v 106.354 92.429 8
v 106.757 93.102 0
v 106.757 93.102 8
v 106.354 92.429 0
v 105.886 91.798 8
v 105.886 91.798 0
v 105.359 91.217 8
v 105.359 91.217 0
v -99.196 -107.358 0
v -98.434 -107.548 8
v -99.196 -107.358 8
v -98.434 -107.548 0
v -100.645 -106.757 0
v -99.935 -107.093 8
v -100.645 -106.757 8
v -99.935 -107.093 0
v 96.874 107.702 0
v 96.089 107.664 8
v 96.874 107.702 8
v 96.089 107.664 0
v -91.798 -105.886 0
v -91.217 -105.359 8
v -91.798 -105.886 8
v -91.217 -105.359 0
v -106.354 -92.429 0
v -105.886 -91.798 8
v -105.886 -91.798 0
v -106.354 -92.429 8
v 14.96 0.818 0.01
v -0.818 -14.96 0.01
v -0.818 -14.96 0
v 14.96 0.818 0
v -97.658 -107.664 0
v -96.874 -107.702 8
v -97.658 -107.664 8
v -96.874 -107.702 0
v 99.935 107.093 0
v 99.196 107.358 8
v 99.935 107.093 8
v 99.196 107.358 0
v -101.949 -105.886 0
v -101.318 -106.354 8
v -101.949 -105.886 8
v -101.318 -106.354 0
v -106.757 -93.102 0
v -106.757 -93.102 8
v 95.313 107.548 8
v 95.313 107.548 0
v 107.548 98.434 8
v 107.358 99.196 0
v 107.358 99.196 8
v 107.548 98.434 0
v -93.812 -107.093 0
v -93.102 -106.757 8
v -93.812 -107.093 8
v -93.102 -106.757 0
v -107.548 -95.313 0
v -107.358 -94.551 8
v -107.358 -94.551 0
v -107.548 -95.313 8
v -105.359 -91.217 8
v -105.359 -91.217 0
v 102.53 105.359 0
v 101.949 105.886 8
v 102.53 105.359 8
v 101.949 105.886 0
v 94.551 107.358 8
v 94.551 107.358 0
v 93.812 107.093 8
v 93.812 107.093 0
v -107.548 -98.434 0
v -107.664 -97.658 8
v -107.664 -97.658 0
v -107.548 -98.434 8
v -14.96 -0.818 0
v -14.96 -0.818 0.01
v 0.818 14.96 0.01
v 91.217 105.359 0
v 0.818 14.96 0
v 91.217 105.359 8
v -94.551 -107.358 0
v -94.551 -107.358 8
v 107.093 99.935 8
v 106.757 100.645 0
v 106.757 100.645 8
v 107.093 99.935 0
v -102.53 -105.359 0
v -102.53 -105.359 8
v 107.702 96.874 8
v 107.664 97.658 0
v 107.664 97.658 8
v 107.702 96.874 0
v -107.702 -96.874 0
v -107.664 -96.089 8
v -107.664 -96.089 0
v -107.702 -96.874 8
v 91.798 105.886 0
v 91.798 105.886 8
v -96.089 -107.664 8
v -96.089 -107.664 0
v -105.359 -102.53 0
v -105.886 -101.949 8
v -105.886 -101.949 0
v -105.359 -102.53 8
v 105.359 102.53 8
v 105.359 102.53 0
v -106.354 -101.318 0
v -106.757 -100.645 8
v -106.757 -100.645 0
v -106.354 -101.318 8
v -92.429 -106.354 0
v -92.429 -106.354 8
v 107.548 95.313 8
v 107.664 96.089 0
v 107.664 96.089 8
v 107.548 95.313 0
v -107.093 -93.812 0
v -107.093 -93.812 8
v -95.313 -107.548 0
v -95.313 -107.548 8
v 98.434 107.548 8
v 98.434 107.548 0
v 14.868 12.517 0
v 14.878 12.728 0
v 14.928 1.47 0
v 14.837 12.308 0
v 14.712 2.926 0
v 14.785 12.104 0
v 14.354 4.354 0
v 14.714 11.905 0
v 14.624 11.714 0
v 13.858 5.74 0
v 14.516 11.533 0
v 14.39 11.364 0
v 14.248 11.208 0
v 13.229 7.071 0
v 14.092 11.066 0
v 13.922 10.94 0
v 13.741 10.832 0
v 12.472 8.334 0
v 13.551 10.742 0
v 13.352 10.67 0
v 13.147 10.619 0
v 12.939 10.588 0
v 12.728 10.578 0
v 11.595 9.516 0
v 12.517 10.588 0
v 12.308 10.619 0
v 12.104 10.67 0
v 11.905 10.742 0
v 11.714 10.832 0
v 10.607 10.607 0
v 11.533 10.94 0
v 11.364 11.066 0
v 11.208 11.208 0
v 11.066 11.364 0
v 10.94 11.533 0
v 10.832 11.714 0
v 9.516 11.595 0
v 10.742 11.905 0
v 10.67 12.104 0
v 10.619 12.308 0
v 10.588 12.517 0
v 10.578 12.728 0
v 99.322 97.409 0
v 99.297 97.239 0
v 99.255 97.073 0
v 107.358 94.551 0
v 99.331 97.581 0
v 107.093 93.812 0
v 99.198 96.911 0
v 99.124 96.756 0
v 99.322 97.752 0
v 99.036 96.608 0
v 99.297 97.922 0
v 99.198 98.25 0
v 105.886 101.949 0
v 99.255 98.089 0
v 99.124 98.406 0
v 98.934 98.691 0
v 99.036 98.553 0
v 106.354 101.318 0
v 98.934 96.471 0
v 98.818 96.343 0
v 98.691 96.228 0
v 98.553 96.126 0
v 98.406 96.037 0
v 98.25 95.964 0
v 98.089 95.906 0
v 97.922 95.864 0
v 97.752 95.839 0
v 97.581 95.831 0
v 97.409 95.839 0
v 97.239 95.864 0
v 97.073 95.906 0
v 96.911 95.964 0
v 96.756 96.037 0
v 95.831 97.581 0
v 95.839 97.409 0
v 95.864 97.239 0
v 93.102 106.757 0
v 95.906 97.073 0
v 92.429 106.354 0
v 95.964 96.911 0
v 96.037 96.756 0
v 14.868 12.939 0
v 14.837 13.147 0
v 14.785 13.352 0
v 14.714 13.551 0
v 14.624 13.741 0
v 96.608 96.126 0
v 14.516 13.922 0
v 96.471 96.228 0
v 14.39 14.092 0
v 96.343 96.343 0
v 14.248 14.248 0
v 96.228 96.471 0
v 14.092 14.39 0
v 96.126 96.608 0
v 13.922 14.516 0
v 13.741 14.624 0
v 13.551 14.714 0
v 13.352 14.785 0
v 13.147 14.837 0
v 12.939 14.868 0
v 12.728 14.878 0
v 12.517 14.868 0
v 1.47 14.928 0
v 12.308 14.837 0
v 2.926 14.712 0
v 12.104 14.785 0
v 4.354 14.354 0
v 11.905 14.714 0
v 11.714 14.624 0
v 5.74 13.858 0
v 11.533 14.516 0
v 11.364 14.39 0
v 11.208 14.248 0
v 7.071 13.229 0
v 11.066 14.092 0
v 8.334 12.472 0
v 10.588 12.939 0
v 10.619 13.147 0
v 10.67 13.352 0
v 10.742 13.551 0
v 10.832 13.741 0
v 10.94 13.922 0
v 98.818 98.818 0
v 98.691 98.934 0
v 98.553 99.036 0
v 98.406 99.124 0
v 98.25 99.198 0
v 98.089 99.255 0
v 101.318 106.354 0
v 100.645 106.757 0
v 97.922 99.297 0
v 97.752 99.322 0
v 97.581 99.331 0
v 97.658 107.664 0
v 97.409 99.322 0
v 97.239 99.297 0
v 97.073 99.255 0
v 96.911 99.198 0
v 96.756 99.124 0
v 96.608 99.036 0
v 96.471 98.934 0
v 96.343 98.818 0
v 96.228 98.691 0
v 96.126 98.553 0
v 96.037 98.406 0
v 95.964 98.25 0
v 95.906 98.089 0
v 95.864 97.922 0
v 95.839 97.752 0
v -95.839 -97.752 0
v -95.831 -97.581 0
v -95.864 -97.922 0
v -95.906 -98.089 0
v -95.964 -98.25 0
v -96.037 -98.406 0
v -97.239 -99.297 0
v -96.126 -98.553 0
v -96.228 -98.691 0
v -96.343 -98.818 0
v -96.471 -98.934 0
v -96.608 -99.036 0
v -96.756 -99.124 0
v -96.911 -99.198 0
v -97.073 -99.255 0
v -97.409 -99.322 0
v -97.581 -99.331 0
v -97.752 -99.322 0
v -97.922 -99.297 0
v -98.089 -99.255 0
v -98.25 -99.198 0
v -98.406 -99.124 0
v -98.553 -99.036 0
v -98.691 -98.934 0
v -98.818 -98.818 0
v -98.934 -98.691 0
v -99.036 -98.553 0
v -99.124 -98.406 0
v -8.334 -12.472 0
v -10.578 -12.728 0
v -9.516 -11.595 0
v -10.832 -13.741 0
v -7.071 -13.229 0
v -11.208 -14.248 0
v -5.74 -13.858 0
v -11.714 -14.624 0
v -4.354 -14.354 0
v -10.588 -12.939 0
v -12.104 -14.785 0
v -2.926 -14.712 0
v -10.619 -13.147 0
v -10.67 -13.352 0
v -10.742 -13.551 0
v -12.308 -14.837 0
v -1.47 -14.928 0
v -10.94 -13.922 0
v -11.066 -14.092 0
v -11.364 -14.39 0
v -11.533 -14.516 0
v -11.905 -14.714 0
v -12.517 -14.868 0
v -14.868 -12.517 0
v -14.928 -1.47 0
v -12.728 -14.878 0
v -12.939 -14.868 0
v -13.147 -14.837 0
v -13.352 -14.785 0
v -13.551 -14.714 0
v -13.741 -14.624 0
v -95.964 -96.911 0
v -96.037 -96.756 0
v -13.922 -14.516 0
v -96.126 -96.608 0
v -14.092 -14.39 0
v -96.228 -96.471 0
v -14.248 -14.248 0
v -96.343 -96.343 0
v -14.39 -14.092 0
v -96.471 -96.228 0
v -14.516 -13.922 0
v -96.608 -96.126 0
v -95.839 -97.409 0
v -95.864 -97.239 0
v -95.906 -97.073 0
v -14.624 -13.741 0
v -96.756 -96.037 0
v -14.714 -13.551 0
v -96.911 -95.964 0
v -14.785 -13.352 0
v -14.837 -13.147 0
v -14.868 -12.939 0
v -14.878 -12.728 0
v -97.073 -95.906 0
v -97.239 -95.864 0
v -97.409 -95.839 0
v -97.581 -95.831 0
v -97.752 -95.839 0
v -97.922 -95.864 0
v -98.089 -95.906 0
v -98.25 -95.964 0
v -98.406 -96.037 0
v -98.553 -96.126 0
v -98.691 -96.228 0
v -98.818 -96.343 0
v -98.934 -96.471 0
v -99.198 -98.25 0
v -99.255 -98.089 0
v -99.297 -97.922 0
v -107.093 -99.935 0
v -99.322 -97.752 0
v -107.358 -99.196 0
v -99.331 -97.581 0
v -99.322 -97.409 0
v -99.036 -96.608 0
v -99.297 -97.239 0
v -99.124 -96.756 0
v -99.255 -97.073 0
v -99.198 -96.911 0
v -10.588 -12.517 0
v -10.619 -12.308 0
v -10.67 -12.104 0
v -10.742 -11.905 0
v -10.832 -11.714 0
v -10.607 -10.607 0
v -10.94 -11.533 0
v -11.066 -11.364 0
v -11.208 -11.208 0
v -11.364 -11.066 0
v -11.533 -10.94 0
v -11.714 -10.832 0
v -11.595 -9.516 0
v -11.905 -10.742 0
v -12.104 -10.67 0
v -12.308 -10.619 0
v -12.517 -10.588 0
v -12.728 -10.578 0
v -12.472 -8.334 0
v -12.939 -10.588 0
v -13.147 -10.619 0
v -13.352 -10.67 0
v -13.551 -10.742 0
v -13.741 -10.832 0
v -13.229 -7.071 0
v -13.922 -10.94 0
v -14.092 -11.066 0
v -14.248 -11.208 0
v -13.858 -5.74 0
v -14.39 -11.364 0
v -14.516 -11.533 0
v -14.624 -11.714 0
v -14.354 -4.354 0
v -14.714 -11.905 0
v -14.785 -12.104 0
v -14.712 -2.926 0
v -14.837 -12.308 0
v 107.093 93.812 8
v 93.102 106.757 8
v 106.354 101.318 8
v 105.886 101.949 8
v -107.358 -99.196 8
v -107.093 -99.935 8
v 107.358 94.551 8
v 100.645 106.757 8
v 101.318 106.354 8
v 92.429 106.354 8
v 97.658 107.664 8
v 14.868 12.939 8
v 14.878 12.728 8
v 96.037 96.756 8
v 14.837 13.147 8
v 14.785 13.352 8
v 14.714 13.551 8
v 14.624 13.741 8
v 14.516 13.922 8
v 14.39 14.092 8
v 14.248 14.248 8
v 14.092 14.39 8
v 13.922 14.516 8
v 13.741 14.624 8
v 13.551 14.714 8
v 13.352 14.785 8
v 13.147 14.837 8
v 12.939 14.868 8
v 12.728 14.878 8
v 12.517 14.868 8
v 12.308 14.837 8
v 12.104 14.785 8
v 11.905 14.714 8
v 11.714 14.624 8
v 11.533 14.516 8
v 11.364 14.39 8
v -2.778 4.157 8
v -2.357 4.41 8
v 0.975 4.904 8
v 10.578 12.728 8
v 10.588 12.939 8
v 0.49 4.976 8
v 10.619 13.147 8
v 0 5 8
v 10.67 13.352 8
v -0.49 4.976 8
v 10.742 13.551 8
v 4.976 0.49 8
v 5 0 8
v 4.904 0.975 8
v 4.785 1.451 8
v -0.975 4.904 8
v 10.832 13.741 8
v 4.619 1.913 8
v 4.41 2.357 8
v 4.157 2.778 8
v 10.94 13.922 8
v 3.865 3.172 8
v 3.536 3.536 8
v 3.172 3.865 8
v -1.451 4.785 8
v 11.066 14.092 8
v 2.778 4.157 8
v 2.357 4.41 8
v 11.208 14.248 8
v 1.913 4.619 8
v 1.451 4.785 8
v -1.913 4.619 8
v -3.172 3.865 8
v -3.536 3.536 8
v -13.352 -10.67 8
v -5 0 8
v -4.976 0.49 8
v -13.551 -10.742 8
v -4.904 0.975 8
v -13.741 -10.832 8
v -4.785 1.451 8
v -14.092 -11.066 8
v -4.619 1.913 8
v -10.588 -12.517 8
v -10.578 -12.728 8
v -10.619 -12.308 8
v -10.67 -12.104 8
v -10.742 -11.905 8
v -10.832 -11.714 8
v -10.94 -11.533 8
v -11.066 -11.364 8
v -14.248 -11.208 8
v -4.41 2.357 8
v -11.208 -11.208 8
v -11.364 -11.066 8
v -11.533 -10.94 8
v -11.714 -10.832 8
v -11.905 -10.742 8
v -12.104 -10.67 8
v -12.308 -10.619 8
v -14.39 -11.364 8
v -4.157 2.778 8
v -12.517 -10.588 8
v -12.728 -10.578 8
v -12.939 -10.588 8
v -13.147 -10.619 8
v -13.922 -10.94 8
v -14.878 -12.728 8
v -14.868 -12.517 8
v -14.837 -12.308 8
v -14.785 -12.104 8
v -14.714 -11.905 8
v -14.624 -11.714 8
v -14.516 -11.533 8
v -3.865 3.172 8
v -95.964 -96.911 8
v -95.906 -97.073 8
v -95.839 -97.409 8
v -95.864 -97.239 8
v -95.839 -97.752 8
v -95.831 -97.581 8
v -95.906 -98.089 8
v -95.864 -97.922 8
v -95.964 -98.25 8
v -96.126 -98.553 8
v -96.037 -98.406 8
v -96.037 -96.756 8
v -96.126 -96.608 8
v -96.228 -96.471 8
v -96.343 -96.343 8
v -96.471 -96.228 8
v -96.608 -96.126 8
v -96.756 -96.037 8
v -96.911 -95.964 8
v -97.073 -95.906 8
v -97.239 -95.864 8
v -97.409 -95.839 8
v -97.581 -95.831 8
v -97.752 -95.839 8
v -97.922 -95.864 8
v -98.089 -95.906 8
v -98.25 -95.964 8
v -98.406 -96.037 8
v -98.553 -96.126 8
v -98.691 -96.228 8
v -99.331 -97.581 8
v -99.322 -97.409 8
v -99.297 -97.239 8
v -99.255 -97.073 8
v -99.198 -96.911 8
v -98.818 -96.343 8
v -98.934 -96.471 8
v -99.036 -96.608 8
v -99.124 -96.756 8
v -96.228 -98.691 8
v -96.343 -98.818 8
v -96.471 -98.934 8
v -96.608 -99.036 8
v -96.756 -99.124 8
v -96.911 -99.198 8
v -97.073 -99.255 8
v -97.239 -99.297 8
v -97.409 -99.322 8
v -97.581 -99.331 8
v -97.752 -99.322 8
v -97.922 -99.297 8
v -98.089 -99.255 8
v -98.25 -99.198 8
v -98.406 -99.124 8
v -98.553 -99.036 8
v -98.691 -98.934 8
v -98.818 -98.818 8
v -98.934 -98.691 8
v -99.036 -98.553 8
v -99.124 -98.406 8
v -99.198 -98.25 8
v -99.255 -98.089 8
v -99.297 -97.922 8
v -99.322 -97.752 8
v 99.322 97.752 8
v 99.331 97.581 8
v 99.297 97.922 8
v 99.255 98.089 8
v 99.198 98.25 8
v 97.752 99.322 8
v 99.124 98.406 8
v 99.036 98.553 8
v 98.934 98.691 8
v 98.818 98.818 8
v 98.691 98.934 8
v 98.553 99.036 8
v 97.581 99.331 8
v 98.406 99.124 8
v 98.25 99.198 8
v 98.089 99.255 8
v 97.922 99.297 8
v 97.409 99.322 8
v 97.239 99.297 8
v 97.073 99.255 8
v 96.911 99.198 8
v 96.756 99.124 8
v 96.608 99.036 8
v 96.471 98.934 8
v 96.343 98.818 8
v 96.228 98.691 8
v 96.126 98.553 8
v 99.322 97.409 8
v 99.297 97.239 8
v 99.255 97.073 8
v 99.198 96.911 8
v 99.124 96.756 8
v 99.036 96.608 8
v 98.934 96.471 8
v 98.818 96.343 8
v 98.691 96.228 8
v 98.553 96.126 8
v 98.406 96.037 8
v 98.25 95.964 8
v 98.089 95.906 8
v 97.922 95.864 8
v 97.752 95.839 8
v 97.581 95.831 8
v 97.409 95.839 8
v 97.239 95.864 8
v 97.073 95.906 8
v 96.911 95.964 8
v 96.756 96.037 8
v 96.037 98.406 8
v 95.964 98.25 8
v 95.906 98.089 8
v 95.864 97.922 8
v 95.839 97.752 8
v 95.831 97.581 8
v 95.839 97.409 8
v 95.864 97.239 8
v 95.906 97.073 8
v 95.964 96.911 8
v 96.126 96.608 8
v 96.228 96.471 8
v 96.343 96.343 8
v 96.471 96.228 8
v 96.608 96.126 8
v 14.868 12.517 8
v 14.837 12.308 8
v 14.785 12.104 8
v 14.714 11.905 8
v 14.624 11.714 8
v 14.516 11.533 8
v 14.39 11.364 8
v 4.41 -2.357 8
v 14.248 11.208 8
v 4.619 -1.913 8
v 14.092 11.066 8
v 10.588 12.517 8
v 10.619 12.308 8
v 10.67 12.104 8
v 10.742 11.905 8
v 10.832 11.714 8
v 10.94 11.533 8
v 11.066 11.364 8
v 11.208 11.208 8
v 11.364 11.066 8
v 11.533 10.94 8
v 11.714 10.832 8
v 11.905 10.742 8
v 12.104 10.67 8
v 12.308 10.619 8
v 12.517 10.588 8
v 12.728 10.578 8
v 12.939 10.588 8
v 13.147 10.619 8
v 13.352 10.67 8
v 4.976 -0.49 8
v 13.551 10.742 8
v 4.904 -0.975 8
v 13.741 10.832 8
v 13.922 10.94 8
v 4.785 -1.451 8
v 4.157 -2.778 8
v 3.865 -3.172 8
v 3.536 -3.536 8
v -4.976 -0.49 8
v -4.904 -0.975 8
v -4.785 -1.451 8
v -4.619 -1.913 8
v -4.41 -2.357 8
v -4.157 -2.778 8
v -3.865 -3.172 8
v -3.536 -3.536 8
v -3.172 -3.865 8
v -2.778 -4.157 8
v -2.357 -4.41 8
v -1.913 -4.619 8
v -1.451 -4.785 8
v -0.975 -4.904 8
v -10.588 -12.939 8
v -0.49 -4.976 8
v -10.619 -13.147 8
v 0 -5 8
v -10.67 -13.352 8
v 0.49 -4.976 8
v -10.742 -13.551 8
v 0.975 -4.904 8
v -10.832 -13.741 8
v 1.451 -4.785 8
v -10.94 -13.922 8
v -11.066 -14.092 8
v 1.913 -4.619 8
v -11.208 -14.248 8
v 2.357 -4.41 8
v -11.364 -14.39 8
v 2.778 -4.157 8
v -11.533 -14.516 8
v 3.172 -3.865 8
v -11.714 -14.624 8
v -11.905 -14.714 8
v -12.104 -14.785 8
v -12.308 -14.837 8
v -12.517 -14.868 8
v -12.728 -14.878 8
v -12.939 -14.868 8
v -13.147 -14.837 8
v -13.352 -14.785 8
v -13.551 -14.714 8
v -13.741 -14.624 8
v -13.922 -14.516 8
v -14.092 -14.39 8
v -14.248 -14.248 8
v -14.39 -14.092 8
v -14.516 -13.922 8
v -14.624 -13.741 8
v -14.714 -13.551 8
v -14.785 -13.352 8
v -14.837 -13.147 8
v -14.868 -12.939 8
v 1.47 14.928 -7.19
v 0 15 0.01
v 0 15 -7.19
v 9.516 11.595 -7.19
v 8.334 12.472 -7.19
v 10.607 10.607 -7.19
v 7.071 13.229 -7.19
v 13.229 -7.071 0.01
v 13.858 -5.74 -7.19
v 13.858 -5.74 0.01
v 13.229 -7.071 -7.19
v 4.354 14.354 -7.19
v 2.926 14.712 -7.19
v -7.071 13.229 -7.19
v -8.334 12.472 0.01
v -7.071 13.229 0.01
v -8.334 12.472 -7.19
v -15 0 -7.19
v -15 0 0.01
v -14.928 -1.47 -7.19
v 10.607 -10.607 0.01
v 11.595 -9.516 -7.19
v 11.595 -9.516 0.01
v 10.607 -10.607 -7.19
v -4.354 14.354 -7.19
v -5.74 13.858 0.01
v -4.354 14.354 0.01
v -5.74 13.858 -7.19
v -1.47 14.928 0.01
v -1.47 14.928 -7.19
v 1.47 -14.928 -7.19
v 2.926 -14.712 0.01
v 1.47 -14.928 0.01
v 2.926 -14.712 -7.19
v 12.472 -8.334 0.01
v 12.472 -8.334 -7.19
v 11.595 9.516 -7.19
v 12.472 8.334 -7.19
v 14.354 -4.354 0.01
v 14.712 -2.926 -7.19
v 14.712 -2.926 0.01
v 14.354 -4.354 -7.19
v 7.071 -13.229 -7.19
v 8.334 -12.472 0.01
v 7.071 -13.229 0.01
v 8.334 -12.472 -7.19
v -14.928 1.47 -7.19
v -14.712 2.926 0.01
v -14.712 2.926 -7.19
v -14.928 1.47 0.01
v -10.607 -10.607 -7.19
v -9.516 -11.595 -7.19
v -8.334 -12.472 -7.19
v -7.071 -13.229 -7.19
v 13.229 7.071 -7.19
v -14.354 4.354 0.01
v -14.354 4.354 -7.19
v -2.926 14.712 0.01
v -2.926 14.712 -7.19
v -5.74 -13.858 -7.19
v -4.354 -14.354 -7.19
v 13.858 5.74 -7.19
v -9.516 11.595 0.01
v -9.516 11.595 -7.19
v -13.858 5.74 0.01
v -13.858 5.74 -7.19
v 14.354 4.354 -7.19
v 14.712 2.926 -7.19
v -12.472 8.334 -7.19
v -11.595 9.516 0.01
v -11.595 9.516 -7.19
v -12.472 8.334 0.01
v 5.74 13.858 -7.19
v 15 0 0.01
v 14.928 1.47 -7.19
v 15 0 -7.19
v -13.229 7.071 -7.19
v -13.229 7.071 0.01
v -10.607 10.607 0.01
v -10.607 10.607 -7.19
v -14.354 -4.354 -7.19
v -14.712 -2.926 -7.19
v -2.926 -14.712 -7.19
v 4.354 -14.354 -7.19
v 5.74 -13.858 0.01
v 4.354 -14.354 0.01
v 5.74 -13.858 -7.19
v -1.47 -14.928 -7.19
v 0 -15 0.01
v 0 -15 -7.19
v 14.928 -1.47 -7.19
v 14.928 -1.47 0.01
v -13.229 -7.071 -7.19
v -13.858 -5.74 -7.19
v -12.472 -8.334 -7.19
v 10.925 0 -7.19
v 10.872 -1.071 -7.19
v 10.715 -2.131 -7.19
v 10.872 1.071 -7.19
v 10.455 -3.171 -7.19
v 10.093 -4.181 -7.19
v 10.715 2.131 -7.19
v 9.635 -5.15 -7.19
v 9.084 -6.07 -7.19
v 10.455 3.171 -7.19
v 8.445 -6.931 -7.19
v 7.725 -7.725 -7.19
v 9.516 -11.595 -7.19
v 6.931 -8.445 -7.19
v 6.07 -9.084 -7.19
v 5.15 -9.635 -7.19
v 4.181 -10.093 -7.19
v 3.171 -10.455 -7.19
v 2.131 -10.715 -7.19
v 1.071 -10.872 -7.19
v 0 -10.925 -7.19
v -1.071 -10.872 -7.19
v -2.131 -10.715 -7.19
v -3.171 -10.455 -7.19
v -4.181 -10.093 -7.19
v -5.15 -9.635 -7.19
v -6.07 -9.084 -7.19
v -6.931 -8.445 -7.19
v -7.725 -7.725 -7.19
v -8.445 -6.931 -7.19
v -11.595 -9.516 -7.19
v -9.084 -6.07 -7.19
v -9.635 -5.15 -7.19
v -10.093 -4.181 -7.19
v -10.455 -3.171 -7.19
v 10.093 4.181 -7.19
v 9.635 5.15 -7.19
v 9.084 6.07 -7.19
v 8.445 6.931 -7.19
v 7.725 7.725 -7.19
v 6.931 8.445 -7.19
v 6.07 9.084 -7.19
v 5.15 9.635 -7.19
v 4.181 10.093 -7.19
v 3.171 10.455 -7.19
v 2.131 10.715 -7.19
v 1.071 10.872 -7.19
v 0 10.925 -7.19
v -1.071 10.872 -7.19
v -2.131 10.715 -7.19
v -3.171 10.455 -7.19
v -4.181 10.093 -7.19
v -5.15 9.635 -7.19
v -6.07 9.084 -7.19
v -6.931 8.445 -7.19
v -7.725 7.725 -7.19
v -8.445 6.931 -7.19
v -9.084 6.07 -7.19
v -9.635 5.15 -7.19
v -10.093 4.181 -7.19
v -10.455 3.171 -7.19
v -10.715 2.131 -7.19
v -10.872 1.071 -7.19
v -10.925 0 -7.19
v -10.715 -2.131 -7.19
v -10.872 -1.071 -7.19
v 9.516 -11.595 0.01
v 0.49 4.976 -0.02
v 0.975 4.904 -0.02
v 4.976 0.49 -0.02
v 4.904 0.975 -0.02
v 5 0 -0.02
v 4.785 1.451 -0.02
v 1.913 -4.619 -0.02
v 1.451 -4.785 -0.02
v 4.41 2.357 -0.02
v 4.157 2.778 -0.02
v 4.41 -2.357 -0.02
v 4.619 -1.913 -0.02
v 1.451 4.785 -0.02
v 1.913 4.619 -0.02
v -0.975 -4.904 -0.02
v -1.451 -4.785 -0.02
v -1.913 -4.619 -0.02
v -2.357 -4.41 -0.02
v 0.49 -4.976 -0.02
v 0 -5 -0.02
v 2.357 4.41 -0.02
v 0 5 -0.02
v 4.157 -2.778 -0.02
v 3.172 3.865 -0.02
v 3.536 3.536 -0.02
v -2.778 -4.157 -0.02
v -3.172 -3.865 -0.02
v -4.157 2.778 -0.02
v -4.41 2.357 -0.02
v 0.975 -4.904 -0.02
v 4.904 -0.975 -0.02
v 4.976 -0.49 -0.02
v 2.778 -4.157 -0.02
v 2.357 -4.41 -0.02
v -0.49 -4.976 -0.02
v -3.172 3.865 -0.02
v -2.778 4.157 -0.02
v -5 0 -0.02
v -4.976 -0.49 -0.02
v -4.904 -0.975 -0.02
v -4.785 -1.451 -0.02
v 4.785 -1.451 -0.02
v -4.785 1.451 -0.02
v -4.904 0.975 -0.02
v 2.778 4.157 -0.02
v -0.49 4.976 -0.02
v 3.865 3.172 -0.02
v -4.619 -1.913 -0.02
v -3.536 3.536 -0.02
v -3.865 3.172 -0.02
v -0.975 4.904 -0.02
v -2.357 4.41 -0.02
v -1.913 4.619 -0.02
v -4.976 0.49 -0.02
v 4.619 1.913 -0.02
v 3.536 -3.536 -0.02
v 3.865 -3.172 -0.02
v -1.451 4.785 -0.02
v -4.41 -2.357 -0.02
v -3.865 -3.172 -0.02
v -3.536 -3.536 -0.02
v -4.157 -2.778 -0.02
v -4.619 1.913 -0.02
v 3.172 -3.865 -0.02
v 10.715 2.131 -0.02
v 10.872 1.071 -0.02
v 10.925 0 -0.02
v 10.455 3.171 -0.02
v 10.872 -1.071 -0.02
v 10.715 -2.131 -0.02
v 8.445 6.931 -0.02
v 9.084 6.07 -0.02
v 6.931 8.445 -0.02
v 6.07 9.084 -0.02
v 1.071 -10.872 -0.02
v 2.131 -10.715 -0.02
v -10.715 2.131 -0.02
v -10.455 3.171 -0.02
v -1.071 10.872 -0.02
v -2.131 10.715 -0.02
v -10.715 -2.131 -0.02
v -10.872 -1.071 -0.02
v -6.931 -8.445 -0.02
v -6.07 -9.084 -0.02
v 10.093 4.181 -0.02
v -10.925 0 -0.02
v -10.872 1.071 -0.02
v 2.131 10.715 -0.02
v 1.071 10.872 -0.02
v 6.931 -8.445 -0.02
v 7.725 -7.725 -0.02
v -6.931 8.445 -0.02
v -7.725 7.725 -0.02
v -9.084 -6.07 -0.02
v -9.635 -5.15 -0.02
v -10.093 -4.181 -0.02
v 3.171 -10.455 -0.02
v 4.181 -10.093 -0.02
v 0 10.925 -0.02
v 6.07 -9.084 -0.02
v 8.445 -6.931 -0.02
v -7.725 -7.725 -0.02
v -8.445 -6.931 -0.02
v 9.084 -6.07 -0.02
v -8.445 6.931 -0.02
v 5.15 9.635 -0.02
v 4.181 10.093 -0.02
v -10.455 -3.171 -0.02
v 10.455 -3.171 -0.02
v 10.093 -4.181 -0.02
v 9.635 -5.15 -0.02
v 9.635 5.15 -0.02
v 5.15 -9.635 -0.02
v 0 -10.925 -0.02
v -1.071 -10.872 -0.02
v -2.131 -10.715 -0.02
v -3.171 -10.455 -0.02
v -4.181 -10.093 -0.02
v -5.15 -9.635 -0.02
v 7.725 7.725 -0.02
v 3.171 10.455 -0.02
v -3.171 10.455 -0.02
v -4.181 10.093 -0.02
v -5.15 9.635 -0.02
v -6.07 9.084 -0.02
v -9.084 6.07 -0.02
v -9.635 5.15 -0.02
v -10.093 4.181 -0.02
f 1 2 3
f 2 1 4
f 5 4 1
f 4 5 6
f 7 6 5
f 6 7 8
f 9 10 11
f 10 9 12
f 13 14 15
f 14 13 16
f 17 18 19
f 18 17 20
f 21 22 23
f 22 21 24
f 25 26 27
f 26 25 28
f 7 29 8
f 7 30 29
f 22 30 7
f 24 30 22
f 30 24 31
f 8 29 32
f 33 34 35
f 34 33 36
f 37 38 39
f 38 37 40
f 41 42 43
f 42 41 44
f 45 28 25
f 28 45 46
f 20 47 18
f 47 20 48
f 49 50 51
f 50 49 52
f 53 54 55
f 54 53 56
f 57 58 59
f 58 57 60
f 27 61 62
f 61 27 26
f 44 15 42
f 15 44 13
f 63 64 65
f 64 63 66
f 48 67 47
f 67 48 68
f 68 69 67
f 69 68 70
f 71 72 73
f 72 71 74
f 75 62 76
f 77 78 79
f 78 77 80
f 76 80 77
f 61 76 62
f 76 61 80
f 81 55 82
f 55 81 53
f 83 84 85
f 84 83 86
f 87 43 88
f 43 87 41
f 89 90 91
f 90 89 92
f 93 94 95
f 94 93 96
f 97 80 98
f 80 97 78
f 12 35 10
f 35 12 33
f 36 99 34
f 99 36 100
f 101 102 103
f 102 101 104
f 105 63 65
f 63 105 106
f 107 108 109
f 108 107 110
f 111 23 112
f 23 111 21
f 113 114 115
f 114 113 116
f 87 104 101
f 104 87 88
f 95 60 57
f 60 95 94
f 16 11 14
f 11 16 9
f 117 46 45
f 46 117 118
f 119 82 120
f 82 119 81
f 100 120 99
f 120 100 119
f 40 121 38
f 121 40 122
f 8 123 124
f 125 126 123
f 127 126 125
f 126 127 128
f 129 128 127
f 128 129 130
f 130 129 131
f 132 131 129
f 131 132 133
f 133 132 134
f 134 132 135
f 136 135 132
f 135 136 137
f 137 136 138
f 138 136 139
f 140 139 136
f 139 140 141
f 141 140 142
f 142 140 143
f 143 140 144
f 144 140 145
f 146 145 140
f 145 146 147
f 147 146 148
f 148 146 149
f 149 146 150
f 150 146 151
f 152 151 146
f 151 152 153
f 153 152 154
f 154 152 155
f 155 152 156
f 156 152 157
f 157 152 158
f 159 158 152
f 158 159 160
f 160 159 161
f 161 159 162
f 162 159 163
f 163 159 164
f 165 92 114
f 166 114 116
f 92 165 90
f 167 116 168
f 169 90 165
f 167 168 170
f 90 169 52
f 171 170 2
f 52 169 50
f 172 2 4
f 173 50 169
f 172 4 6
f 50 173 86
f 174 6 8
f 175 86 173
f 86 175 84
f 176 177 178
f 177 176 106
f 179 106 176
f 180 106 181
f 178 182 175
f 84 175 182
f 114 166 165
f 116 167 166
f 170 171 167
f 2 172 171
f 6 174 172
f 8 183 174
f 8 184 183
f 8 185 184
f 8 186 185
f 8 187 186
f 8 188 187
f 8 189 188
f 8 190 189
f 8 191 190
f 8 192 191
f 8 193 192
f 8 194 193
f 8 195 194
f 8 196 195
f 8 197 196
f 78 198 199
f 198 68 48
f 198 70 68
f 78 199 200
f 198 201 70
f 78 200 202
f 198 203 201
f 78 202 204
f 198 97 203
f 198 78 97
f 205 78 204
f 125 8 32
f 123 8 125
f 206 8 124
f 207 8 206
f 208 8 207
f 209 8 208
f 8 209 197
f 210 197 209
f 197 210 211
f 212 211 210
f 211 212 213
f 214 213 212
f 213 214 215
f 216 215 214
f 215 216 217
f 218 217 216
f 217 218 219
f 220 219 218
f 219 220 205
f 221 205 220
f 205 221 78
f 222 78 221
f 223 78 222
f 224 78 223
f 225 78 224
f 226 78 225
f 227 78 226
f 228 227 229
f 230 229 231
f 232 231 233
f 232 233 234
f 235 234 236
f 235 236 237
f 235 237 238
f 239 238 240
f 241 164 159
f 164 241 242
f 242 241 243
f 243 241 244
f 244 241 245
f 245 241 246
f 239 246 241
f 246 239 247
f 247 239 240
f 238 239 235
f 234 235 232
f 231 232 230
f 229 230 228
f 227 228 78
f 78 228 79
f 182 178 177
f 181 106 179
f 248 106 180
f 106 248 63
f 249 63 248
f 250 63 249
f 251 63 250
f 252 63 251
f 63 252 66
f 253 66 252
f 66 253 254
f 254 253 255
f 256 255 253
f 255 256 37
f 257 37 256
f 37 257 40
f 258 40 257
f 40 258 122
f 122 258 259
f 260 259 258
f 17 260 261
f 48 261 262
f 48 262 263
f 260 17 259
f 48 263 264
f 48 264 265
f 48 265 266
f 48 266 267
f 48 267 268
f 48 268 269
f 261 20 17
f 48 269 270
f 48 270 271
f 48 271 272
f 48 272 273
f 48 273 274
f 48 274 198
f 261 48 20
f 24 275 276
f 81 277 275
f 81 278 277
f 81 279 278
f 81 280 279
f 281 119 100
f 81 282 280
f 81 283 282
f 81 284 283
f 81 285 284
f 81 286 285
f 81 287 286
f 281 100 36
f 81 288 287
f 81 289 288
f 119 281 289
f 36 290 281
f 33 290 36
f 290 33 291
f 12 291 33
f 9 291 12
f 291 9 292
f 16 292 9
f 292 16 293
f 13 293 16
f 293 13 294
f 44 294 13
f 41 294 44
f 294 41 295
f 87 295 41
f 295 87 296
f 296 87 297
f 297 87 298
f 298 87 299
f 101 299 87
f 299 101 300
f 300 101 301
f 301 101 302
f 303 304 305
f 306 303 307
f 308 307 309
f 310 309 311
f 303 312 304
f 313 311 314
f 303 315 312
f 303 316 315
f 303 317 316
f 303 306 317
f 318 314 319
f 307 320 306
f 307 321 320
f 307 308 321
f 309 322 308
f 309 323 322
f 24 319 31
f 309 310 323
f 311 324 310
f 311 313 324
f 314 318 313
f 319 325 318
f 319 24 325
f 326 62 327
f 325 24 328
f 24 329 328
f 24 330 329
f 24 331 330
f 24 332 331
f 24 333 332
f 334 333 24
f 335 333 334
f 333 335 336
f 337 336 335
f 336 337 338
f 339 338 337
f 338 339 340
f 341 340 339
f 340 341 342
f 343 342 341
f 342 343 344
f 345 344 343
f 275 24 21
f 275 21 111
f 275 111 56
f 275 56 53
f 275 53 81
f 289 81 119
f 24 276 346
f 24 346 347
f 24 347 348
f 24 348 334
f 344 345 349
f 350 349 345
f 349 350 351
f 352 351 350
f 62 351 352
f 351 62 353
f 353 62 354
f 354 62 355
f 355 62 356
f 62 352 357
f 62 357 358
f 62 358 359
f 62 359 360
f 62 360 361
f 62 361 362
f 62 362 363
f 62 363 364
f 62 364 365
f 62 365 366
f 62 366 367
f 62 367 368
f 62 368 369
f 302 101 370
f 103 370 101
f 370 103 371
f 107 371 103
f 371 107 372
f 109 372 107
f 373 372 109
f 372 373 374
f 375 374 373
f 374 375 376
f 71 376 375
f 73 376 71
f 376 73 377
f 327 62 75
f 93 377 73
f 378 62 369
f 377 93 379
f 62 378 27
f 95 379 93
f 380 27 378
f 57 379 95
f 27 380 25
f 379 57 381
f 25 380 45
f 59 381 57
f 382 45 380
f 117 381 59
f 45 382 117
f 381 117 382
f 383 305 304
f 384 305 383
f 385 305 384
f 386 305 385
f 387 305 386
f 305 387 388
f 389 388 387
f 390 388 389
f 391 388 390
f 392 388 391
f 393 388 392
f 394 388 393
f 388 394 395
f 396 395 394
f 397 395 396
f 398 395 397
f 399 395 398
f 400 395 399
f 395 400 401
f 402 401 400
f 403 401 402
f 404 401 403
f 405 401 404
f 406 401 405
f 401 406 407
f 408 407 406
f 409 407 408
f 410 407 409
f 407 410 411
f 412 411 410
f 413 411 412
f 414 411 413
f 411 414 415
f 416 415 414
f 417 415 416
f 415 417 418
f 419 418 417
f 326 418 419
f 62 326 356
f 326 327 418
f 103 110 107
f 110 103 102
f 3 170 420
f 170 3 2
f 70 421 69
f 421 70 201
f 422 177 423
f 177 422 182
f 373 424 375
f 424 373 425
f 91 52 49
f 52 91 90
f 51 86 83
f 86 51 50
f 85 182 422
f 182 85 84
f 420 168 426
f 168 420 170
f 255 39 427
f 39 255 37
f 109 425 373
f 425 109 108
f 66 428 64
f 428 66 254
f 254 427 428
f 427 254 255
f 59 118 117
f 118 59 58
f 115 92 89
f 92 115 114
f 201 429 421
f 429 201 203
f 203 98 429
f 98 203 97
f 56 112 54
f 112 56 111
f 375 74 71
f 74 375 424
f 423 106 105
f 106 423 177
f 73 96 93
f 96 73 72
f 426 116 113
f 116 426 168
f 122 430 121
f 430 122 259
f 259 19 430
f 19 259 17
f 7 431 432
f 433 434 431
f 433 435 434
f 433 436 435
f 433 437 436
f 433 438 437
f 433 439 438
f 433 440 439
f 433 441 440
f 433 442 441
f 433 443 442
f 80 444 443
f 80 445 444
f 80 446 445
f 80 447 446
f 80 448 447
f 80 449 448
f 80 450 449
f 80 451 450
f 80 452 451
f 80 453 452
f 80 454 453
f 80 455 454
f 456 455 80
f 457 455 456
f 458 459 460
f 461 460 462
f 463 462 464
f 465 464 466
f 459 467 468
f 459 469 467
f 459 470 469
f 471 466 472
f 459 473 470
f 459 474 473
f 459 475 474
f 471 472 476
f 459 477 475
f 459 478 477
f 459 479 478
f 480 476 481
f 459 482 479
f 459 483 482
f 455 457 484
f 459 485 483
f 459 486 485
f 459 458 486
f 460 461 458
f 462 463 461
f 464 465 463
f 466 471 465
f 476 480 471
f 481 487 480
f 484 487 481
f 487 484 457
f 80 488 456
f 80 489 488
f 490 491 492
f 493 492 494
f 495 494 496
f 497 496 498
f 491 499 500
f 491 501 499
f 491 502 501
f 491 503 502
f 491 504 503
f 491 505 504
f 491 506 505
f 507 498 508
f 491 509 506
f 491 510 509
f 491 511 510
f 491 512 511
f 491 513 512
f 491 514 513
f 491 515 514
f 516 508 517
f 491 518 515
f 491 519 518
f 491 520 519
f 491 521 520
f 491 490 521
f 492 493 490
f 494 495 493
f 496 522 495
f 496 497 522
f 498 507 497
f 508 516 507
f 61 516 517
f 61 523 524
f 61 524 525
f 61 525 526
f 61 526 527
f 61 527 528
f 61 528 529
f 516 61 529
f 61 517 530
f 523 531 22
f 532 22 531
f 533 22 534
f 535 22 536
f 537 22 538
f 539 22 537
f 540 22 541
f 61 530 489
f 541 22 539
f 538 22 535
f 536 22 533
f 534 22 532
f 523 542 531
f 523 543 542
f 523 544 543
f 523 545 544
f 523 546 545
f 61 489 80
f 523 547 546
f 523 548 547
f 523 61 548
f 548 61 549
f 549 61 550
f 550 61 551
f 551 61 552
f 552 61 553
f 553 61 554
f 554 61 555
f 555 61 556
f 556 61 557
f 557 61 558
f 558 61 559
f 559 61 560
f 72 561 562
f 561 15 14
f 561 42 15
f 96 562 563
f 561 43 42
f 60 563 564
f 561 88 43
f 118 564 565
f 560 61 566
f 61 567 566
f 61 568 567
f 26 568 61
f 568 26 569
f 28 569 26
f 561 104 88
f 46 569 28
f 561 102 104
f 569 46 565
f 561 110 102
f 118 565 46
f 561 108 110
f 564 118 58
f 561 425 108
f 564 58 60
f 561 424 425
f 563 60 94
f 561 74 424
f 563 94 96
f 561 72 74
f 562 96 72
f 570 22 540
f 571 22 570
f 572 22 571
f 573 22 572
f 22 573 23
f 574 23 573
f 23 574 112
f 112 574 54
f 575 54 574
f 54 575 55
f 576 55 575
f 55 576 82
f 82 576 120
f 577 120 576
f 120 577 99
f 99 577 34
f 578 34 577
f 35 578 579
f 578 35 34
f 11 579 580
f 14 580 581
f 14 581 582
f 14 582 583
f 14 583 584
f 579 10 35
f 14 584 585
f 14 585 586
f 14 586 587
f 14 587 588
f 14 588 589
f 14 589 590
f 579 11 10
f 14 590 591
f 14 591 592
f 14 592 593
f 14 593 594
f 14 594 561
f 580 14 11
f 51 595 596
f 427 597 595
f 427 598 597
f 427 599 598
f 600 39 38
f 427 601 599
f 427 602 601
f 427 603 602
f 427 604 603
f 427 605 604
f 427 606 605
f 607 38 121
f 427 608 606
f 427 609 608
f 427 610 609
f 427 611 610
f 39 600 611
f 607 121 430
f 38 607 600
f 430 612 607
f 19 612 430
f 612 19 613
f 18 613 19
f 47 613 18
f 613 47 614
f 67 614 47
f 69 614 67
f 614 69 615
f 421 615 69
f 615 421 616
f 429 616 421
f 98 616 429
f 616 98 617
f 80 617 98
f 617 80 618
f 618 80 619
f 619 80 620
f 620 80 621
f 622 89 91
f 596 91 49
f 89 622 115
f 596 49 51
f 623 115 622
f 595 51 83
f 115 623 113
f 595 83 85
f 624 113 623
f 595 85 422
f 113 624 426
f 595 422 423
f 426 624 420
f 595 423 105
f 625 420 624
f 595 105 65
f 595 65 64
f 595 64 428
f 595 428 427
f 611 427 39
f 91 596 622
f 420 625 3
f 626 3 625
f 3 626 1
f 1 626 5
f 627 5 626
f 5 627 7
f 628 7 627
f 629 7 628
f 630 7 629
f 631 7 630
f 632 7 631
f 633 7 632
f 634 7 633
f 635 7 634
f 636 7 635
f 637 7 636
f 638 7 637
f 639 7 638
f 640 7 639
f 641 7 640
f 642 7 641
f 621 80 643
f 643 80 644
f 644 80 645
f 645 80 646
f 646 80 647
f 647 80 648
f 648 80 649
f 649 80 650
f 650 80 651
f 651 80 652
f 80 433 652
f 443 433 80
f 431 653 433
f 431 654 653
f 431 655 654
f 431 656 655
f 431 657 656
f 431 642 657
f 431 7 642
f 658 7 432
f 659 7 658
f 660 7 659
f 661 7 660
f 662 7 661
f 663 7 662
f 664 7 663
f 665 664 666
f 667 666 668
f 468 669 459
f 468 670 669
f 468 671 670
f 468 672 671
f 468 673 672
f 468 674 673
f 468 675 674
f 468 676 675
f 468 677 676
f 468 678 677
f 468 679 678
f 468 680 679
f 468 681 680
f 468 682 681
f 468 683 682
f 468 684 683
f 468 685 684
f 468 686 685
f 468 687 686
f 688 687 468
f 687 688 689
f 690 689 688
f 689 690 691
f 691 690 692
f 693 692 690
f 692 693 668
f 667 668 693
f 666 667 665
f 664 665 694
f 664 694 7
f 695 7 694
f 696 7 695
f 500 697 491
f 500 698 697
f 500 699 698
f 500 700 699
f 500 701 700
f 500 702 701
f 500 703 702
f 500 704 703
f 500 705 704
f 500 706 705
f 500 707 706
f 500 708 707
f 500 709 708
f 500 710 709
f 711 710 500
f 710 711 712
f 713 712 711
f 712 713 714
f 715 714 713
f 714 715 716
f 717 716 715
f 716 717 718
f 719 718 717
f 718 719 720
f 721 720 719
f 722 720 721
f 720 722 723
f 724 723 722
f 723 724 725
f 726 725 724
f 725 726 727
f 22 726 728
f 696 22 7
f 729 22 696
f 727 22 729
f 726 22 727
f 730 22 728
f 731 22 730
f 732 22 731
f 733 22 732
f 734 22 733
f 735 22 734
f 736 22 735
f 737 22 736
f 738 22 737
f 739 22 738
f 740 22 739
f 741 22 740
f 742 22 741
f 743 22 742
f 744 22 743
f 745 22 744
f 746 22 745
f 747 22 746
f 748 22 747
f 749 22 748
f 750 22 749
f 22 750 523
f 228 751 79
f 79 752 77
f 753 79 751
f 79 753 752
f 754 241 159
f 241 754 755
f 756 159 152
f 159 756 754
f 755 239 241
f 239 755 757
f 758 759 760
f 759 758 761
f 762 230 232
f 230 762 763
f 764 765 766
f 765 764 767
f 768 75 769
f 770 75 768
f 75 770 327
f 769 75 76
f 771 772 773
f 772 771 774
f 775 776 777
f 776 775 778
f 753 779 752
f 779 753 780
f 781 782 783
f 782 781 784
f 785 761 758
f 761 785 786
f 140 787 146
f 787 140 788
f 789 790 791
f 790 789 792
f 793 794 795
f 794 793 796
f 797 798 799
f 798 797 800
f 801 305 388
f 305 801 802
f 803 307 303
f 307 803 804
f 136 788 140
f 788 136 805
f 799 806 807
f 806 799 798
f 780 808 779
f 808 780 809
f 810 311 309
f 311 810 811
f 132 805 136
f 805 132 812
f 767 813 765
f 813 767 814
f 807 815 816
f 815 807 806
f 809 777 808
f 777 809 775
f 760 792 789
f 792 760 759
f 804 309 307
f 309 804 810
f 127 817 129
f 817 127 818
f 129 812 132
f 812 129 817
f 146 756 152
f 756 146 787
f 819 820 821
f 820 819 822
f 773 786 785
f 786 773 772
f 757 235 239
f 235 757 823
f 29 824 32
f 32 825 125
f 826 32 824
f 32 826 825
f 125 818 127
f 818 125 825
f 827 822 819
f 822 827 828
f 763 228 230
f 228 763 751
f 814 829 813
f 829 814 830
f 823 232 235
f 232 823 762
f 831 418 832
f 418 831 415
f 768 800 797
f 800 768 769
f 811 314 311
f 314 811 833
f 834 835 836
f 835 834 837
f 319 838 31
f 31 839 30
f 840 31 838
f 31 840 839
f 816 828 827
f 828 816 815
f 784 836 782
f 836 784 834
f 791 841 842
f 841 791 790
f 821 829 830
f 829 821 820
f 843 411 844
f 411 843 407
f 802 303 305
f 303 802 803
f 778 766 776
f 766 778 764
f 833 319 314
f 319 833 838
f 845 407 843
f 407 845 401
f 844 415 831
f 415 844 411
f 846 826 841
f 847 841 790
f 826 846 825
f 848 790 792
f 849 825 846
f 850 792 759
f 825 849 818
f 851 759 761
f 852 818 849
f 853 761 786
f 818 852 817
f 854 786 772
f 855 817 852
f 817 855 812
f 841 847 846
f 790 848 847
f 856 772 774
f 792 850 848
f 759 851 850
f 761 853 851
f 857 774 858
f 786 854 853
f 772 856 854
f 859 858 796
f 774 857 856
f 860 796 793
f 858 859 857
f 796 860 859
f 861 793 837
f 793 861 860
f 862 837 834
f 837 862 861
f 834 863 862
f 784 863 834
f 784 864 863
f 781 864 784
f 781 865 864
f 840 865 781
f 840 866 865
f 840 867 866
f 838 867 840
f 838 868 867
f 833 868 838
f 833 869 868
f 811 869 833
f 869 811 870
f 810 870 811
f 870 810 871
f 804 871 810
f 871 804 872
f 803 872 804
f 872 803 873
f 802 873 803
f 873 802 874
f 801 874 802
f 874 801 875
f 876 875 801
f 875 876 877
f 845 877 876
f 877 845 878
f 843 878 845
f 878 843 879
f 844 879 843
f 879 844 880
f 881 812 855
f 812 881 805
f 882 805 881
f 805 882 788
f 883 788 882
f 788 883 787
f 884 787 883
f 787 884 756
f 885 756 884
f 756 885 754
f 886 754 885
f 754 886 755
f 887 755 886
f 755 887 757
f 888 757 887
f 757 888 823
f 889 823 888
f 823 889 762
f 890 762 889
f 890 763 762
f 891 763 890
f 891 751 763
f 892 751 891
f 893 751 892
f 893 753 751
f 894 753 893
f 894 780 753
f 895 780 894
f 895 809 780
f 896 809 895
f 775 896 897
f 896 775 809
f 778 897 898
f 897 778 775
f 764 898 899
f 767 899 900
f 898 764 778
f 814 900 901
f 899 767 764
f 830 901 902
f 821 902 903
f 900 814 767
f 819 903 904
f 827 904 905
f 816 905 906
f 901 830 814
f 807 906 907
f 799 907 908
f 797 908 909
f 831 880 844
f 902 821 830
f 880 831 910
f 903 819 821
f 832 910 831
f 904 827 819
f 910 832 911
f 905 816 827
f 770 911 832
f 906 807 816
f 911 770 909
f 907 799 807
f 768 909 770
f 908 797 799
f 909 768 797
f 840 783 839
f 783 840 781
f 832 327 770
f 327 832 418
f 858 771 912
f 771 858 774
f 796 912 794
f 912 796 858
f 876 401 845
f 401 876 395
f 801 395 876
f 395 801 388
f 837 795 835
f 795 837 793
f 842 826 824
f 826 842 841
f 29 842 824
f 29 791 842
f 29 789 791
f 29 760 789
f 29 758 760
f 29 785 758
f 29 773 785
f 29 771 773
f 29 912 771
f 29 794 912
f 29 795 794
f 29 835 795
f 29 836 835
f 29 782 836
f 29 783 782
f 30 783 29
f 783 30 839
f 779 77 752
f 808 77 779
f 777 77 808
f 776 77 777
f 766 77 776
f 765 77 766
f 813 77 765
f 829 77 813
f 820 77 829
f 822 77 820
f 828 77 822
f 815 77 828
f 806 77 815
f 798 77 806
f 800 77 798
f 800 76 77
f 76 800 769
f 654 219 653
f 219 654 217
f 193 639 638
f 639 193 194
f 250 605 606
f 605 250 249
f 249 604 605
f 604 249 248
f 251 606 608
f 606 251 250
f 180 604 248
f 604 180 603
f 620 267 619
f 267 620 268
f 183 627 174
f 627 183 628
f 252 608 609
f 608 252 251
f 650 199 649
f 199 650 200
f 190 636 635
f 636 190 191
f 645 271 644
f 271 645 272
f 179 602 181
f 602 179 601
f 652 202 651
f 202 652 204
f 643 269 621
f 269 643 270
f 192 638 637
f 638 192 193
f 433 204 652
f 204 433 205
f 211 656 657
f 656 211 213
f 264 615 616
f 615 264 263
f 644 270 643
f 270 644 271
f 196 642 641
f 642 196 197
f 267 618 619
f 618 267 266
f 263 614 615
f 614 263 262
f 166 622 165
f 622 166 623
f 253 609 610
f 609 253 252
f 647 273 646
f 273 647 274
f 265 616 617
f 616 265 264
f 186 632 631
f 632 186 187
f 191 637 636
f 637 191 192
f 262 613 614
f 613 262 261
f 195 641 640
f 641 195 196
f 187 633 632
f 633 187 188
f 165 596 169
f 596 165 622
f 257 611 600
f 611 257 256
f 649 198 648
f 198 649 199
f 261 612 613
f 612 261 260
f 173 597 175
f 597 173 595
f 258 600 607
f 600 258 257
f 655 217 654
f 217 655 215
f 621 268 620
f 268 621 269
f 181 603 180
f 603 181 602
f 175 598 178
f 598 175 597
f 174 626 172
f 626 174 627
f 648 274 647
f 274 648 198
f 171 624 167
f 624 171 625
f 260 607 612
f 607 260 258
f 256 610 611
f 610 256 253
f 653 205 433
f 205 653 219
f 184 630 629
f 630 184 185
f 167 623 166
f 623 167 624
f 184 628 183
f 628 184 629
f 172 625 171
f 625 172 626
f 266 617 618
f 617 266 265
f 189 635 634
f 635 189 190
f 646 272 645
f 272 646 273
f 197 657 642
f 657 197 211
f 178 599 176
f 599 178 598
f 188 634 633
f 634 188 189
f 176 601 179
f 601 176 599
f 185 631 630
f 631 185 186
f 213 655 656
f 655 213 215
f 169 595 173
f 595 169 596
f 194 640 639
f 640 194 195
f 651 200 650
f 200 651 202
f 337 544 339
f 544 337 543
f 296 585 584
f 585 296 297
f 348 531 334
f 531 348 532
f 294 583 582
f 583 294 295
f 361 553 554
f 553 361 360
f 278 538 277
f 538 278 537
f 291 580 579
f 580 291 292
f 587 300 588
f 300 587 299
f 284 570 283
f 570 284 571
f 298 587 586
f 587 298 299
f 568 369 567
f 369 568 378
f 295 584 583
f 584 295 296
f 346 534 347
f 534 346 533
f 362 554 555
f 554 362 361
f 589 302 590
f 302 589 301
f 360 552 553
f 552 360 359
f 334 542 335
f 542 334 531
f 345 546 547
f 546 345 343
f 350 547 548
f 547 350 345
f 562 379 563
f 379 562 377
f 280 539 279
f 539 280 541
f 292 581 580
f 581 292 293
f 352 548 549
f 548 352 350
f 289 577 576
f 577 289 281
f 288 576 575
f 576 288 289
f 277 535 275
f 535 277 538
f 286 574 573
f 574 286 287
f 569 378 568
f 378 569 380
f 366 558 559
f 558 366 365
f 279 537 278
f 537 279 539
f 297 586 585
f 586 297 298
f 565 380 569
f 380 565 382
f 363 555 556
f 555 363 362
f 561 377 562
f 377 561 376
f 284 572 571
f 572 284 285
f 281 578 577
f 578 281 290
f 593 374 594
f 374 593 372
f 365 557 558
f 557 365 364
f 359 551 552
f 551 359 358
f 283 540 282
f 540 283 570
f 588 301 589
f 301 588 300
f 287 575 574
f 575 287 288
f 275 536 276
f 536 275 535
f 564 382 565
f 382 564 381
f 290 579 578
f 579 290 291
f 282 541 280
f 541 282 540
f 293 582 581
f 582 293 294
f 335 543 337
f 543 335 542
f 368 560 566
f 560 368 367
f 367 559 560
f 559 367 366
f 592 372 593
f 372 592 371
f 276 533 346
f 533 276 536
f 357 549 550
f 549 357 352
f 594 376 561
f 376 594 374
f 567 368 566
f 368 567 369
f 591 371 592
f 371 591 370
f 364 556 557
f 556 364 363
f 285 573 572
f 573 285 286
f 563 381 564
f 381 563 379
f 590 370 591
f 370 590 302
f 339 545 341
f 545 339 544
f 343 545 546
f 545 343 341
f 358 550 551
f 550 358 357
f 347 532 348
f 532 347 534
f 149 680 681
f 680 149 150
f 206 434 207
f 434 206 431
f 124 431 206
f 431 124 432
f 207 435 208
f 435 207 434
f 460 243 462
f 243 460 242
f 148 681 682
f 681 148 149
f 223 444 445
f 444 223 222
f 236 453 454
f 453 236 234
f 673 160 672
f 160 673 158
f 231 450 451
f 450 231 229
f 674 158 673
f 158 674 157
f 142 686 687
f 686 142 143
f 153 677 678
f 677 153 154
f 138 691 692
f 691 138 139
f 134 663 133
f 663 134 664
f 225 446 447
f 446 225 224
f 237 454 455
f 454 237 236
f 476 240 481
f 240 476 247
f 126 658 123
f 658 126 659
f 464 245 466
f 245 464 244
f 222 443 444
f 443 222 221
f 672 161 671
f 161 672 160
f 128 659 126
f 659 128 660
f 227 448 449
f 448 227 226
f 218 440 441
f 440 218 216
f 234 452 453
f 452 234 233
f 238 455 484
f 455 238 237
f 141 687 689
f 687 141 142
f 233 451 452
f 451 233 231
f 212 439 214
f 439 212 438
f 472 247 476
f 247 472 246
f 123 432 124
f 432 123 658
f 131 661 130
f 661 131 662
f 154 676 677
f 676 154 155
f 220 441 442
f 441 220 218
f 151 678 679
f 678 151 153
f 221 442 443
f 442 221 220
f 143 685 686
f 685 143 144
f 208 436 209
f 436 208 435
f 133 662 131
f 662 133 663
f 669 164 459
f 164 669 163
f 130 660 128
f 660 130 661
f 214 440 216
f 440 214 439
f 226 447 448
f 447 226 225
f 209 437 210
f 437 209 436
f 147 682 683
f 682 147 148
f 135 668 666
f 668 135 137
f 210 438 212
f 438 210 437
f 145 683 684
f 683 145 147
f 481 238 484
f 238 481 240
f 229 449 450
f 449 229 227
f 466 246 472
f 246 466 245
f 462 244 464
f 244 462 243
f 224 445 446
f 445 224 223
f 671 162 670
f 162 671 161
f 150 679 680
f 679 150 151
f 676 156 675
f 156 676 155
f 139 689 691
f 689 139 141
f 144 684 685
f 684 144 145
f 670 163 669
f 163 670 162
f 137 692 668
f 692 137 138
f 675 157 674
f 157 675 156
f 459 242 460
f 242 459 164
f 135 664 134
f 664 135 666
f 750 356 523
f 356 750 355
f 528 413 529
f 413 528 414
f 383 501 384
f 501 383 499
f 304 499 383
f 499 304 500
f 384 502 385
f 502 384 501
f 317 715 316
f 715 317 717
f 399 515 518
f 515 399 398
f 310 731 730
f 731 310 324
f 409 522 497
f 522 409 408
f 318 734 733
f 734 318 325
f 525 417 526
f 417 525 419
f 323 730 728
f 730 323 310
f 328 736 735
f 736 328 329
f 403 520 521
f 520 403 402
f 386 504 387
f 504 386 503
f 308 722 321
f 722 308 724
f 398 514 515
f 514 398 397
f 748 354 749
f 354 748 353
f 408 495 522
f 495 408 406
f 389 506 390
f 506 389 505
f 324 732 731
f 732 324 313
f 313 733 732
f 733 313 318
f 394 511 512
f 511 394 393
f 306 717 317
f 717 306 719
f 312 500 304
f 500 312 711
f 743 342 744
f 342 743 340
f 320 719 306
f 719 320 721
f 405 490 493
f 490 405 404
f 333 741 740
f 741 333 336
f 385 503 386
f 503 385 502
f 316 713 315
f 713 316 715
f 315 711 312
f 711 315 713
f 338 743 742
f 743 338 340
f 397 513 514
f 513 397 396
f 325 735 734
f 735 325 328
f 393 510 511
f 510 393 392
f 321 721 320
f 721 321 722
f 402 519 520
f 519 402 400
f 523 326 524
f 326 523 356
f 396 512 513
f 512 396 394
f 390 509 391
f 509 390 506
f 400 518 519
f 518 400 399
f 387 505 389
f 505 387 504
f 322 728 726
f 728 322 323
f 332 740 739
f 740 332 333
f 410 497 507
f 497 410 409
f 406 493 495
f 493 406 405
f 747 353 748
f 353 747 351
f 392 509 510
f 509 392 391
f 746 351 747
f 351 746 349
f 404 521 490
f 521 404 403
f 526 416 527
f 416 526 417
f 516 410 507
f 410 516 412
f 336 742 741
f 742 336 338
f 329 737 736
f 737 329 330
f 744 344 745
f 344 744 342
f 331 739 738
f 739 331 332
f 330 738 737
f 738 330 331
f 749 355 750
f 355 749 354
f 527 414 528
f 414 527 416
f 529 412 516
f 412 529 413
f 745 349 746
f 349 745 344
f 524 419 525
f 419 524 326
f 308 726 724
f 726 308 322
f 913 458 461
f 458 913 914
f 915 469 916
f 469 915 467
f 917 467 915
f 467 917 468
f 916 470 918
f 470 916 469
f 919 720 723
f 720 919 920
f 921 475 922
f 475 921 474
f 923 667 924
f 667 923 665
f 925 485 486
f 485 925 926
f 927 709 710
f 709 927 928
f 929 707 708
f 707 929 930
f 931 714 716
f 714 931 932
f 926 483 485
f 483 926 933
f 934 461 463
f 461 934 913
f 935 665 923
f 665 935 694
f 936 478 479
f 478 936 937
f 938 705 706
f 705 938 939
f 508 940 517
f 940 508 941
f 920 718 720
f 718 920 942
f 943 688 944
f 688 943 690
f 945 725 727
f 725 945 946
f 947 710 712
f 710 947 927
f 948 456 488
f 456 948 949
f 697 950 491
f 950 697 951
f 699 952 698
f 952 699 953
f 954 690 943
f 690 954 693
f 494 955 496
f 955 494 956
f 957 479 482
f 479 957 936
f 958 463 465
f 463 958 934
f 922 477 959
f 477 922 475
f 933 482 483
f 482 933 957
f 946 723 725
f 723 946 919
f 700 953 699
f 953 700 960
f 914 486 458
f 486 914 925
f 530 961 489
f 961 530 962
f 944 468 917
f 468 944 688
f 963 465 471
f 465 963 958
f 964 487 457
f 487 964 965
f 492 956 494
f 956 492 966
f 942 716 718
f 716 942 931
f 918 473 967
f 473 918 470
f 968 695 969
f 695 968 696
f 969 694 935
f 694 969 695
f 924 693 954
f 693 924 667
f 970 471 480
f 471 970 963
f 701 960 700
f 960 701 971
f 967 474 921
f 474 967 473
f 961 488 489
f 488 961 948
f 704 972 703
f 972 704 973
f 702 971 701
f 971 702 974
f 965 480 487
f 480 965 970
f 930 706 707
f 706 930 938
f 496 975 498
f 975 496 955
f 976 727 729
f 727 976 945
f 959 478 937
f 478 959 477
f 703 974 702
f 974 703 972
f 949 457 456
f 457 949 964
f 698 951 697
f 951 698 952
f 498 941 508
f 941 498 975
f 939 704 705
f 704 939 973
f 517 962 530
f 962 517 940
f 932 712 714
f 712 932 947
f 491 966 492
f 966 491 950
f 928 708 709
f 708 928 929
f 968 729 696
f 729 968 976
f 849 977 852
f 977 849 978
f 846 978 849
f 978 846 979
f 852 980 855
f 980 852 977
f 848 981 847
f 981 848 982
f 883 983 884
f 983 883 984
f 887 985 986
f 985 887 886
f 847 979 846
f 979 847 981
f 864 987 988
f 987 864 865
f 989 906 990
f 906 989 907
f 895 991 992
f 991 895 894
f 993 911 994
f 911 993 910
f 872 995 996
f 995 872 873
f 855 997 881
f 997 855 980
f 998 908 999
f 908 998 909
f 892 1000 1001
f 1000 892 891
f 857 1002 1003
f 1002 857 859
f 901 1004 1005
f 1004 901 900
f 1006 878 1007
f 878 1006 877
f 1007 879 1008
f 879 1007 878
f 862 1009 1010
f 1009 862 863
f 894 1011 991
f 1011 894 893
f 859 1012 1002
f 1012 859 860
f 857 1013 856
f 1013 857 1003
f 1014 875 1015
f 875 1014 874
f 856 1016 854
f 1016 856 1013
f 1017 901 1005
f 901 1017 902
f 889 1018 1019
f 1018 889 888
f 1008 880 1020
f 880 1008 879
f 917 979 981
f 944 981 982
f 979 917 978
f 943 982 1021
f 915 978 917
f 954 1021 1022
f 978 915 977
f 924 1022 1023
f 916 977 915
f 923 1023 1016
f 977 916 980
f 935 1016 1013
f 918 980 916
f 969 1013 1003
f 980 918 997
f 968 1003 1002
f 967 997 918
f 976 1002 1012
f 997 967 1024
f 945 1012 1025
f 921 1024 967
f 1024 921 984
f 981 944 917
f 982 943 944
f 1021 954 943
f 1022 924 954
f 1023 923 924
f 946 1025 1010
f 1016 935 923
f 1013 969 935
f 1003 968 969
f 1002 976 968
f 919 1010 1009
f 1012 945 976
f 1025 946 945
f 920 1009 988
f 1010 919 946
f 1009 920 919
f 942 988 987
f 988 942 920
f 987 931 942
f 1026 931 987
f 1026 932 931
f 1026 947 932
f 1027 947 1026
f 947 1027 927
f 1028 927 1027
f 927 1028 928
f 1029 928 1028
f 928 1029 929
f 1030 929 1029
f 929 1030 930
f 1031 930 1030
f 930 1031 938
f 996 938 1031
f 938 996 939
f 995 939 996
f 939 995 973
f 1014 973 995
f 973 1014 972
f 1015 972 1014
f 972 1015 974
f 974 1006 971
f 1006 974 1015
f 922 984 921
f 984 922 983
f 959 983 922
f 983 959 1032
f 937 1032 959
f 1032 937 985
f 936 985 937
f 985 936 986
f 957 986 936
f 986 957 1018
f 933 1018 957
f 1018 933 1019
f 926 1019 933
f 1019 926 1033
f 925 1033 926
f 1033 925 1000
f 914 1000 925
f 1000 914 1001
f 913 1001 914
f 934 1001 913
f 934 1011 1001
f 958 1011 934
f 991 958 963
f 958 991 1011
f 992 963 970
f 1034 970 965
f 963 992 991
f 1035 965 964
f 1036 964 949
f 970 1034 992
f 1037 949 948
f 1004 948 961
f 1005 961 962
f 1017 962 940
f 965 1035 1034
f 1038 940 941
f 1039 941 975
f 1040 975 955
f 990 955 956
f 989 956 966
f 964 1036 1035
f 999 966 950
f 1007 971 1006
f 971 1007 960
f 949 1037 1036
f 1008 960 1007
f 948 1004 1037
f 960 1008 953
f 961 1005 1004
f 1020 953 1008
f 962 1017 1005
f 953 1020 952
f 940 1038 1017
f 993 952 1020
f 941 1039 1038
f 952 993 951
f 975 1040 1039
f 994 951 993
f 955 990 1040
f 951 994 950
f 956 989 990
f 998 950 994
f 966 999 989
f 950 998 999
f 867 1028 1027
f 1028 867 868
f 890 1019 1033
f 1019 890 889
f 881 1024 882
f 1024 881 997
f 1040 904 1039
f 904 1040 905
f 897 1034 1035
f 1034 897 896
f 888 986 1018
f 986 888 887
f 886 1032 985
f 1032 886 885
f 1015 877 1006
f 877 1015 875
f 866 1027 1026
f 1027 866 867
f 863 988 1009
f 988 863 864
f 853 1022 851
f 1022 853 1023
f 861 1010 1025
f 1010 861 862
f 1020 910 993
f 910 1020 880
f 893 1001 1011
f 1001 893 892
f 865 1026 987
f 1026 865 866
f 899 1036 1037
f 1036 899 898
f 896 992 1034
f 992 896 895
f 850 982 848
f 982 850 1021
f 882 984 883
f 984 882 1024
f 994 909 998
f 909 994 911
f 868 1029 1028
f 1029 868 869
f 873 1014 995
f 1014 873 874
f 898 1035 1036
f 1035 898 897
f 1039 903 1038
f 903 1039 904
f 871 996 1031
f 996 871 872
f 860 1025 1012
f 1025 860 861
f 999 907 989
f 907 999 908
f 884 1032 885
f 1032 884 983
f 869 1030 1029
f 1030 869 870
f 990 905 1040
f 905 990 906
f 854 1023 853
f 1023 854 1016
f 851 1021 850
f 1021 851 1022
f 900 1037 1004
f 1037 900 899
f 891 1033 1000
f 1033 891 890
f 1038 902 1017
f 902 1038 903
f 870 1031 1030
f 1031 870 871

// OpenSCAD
// Gen-DG — front BEARING BRIDGE (bar endbell, 2026-10-10): a 608 boss on a 20 mm wide bar that spans the
// two frame rods at 45 deg and 45+180 deg (R = flange_bolt_r). The front bridge uses the rods at 45/225 deg, the rear
// bridge the rods at 135/315 deg, so the two bridges cross at 90 deg and the stator is held at 4 points.
// A bar instead of a full disc is what lets this big-ring kit fit ONE 410 mm plate. Print flat face DOWN (boss up, no supports).
// Brace holes (temporary M4 jack rods, R = brace_r) sit on the bar axis.
include <parameters.scad>;
$fn = 64;
bar_w = 20;
bar_len = 2 * (flange_bolt_r + 9);
module bar_2d() { offset(r=8) offset(delta=-8) square([bar_len, bar_w], center=true); }
difference() {
    rotate([0, 0, 45]) union() {
        linear_extrude(endbell_thick) bar_2d();
        translate([0, 0, -bearing_h + 0.01]) cylinder(d=30, h=bearing_h);
    }
    translate([0, 0, -bearing_h - 0.1]) cylinder(d=endbell_shaft_clear, h=50);
    translate([0, 0, -bearing_h - 0.02]) cylinder(d=bearing_d, h=bearing_h);
    for (s = [0, 180]) rotate([0, 0, 45 + s]) translate([flange_bolt_r, 0, -20]) cylinder(d=m3_clear, h=60);
    for (a = brace_angles) translate([brace_r*cos(a), brace_r*sin(a), -20]) cylinder(d=brace_d, h=50);
}
